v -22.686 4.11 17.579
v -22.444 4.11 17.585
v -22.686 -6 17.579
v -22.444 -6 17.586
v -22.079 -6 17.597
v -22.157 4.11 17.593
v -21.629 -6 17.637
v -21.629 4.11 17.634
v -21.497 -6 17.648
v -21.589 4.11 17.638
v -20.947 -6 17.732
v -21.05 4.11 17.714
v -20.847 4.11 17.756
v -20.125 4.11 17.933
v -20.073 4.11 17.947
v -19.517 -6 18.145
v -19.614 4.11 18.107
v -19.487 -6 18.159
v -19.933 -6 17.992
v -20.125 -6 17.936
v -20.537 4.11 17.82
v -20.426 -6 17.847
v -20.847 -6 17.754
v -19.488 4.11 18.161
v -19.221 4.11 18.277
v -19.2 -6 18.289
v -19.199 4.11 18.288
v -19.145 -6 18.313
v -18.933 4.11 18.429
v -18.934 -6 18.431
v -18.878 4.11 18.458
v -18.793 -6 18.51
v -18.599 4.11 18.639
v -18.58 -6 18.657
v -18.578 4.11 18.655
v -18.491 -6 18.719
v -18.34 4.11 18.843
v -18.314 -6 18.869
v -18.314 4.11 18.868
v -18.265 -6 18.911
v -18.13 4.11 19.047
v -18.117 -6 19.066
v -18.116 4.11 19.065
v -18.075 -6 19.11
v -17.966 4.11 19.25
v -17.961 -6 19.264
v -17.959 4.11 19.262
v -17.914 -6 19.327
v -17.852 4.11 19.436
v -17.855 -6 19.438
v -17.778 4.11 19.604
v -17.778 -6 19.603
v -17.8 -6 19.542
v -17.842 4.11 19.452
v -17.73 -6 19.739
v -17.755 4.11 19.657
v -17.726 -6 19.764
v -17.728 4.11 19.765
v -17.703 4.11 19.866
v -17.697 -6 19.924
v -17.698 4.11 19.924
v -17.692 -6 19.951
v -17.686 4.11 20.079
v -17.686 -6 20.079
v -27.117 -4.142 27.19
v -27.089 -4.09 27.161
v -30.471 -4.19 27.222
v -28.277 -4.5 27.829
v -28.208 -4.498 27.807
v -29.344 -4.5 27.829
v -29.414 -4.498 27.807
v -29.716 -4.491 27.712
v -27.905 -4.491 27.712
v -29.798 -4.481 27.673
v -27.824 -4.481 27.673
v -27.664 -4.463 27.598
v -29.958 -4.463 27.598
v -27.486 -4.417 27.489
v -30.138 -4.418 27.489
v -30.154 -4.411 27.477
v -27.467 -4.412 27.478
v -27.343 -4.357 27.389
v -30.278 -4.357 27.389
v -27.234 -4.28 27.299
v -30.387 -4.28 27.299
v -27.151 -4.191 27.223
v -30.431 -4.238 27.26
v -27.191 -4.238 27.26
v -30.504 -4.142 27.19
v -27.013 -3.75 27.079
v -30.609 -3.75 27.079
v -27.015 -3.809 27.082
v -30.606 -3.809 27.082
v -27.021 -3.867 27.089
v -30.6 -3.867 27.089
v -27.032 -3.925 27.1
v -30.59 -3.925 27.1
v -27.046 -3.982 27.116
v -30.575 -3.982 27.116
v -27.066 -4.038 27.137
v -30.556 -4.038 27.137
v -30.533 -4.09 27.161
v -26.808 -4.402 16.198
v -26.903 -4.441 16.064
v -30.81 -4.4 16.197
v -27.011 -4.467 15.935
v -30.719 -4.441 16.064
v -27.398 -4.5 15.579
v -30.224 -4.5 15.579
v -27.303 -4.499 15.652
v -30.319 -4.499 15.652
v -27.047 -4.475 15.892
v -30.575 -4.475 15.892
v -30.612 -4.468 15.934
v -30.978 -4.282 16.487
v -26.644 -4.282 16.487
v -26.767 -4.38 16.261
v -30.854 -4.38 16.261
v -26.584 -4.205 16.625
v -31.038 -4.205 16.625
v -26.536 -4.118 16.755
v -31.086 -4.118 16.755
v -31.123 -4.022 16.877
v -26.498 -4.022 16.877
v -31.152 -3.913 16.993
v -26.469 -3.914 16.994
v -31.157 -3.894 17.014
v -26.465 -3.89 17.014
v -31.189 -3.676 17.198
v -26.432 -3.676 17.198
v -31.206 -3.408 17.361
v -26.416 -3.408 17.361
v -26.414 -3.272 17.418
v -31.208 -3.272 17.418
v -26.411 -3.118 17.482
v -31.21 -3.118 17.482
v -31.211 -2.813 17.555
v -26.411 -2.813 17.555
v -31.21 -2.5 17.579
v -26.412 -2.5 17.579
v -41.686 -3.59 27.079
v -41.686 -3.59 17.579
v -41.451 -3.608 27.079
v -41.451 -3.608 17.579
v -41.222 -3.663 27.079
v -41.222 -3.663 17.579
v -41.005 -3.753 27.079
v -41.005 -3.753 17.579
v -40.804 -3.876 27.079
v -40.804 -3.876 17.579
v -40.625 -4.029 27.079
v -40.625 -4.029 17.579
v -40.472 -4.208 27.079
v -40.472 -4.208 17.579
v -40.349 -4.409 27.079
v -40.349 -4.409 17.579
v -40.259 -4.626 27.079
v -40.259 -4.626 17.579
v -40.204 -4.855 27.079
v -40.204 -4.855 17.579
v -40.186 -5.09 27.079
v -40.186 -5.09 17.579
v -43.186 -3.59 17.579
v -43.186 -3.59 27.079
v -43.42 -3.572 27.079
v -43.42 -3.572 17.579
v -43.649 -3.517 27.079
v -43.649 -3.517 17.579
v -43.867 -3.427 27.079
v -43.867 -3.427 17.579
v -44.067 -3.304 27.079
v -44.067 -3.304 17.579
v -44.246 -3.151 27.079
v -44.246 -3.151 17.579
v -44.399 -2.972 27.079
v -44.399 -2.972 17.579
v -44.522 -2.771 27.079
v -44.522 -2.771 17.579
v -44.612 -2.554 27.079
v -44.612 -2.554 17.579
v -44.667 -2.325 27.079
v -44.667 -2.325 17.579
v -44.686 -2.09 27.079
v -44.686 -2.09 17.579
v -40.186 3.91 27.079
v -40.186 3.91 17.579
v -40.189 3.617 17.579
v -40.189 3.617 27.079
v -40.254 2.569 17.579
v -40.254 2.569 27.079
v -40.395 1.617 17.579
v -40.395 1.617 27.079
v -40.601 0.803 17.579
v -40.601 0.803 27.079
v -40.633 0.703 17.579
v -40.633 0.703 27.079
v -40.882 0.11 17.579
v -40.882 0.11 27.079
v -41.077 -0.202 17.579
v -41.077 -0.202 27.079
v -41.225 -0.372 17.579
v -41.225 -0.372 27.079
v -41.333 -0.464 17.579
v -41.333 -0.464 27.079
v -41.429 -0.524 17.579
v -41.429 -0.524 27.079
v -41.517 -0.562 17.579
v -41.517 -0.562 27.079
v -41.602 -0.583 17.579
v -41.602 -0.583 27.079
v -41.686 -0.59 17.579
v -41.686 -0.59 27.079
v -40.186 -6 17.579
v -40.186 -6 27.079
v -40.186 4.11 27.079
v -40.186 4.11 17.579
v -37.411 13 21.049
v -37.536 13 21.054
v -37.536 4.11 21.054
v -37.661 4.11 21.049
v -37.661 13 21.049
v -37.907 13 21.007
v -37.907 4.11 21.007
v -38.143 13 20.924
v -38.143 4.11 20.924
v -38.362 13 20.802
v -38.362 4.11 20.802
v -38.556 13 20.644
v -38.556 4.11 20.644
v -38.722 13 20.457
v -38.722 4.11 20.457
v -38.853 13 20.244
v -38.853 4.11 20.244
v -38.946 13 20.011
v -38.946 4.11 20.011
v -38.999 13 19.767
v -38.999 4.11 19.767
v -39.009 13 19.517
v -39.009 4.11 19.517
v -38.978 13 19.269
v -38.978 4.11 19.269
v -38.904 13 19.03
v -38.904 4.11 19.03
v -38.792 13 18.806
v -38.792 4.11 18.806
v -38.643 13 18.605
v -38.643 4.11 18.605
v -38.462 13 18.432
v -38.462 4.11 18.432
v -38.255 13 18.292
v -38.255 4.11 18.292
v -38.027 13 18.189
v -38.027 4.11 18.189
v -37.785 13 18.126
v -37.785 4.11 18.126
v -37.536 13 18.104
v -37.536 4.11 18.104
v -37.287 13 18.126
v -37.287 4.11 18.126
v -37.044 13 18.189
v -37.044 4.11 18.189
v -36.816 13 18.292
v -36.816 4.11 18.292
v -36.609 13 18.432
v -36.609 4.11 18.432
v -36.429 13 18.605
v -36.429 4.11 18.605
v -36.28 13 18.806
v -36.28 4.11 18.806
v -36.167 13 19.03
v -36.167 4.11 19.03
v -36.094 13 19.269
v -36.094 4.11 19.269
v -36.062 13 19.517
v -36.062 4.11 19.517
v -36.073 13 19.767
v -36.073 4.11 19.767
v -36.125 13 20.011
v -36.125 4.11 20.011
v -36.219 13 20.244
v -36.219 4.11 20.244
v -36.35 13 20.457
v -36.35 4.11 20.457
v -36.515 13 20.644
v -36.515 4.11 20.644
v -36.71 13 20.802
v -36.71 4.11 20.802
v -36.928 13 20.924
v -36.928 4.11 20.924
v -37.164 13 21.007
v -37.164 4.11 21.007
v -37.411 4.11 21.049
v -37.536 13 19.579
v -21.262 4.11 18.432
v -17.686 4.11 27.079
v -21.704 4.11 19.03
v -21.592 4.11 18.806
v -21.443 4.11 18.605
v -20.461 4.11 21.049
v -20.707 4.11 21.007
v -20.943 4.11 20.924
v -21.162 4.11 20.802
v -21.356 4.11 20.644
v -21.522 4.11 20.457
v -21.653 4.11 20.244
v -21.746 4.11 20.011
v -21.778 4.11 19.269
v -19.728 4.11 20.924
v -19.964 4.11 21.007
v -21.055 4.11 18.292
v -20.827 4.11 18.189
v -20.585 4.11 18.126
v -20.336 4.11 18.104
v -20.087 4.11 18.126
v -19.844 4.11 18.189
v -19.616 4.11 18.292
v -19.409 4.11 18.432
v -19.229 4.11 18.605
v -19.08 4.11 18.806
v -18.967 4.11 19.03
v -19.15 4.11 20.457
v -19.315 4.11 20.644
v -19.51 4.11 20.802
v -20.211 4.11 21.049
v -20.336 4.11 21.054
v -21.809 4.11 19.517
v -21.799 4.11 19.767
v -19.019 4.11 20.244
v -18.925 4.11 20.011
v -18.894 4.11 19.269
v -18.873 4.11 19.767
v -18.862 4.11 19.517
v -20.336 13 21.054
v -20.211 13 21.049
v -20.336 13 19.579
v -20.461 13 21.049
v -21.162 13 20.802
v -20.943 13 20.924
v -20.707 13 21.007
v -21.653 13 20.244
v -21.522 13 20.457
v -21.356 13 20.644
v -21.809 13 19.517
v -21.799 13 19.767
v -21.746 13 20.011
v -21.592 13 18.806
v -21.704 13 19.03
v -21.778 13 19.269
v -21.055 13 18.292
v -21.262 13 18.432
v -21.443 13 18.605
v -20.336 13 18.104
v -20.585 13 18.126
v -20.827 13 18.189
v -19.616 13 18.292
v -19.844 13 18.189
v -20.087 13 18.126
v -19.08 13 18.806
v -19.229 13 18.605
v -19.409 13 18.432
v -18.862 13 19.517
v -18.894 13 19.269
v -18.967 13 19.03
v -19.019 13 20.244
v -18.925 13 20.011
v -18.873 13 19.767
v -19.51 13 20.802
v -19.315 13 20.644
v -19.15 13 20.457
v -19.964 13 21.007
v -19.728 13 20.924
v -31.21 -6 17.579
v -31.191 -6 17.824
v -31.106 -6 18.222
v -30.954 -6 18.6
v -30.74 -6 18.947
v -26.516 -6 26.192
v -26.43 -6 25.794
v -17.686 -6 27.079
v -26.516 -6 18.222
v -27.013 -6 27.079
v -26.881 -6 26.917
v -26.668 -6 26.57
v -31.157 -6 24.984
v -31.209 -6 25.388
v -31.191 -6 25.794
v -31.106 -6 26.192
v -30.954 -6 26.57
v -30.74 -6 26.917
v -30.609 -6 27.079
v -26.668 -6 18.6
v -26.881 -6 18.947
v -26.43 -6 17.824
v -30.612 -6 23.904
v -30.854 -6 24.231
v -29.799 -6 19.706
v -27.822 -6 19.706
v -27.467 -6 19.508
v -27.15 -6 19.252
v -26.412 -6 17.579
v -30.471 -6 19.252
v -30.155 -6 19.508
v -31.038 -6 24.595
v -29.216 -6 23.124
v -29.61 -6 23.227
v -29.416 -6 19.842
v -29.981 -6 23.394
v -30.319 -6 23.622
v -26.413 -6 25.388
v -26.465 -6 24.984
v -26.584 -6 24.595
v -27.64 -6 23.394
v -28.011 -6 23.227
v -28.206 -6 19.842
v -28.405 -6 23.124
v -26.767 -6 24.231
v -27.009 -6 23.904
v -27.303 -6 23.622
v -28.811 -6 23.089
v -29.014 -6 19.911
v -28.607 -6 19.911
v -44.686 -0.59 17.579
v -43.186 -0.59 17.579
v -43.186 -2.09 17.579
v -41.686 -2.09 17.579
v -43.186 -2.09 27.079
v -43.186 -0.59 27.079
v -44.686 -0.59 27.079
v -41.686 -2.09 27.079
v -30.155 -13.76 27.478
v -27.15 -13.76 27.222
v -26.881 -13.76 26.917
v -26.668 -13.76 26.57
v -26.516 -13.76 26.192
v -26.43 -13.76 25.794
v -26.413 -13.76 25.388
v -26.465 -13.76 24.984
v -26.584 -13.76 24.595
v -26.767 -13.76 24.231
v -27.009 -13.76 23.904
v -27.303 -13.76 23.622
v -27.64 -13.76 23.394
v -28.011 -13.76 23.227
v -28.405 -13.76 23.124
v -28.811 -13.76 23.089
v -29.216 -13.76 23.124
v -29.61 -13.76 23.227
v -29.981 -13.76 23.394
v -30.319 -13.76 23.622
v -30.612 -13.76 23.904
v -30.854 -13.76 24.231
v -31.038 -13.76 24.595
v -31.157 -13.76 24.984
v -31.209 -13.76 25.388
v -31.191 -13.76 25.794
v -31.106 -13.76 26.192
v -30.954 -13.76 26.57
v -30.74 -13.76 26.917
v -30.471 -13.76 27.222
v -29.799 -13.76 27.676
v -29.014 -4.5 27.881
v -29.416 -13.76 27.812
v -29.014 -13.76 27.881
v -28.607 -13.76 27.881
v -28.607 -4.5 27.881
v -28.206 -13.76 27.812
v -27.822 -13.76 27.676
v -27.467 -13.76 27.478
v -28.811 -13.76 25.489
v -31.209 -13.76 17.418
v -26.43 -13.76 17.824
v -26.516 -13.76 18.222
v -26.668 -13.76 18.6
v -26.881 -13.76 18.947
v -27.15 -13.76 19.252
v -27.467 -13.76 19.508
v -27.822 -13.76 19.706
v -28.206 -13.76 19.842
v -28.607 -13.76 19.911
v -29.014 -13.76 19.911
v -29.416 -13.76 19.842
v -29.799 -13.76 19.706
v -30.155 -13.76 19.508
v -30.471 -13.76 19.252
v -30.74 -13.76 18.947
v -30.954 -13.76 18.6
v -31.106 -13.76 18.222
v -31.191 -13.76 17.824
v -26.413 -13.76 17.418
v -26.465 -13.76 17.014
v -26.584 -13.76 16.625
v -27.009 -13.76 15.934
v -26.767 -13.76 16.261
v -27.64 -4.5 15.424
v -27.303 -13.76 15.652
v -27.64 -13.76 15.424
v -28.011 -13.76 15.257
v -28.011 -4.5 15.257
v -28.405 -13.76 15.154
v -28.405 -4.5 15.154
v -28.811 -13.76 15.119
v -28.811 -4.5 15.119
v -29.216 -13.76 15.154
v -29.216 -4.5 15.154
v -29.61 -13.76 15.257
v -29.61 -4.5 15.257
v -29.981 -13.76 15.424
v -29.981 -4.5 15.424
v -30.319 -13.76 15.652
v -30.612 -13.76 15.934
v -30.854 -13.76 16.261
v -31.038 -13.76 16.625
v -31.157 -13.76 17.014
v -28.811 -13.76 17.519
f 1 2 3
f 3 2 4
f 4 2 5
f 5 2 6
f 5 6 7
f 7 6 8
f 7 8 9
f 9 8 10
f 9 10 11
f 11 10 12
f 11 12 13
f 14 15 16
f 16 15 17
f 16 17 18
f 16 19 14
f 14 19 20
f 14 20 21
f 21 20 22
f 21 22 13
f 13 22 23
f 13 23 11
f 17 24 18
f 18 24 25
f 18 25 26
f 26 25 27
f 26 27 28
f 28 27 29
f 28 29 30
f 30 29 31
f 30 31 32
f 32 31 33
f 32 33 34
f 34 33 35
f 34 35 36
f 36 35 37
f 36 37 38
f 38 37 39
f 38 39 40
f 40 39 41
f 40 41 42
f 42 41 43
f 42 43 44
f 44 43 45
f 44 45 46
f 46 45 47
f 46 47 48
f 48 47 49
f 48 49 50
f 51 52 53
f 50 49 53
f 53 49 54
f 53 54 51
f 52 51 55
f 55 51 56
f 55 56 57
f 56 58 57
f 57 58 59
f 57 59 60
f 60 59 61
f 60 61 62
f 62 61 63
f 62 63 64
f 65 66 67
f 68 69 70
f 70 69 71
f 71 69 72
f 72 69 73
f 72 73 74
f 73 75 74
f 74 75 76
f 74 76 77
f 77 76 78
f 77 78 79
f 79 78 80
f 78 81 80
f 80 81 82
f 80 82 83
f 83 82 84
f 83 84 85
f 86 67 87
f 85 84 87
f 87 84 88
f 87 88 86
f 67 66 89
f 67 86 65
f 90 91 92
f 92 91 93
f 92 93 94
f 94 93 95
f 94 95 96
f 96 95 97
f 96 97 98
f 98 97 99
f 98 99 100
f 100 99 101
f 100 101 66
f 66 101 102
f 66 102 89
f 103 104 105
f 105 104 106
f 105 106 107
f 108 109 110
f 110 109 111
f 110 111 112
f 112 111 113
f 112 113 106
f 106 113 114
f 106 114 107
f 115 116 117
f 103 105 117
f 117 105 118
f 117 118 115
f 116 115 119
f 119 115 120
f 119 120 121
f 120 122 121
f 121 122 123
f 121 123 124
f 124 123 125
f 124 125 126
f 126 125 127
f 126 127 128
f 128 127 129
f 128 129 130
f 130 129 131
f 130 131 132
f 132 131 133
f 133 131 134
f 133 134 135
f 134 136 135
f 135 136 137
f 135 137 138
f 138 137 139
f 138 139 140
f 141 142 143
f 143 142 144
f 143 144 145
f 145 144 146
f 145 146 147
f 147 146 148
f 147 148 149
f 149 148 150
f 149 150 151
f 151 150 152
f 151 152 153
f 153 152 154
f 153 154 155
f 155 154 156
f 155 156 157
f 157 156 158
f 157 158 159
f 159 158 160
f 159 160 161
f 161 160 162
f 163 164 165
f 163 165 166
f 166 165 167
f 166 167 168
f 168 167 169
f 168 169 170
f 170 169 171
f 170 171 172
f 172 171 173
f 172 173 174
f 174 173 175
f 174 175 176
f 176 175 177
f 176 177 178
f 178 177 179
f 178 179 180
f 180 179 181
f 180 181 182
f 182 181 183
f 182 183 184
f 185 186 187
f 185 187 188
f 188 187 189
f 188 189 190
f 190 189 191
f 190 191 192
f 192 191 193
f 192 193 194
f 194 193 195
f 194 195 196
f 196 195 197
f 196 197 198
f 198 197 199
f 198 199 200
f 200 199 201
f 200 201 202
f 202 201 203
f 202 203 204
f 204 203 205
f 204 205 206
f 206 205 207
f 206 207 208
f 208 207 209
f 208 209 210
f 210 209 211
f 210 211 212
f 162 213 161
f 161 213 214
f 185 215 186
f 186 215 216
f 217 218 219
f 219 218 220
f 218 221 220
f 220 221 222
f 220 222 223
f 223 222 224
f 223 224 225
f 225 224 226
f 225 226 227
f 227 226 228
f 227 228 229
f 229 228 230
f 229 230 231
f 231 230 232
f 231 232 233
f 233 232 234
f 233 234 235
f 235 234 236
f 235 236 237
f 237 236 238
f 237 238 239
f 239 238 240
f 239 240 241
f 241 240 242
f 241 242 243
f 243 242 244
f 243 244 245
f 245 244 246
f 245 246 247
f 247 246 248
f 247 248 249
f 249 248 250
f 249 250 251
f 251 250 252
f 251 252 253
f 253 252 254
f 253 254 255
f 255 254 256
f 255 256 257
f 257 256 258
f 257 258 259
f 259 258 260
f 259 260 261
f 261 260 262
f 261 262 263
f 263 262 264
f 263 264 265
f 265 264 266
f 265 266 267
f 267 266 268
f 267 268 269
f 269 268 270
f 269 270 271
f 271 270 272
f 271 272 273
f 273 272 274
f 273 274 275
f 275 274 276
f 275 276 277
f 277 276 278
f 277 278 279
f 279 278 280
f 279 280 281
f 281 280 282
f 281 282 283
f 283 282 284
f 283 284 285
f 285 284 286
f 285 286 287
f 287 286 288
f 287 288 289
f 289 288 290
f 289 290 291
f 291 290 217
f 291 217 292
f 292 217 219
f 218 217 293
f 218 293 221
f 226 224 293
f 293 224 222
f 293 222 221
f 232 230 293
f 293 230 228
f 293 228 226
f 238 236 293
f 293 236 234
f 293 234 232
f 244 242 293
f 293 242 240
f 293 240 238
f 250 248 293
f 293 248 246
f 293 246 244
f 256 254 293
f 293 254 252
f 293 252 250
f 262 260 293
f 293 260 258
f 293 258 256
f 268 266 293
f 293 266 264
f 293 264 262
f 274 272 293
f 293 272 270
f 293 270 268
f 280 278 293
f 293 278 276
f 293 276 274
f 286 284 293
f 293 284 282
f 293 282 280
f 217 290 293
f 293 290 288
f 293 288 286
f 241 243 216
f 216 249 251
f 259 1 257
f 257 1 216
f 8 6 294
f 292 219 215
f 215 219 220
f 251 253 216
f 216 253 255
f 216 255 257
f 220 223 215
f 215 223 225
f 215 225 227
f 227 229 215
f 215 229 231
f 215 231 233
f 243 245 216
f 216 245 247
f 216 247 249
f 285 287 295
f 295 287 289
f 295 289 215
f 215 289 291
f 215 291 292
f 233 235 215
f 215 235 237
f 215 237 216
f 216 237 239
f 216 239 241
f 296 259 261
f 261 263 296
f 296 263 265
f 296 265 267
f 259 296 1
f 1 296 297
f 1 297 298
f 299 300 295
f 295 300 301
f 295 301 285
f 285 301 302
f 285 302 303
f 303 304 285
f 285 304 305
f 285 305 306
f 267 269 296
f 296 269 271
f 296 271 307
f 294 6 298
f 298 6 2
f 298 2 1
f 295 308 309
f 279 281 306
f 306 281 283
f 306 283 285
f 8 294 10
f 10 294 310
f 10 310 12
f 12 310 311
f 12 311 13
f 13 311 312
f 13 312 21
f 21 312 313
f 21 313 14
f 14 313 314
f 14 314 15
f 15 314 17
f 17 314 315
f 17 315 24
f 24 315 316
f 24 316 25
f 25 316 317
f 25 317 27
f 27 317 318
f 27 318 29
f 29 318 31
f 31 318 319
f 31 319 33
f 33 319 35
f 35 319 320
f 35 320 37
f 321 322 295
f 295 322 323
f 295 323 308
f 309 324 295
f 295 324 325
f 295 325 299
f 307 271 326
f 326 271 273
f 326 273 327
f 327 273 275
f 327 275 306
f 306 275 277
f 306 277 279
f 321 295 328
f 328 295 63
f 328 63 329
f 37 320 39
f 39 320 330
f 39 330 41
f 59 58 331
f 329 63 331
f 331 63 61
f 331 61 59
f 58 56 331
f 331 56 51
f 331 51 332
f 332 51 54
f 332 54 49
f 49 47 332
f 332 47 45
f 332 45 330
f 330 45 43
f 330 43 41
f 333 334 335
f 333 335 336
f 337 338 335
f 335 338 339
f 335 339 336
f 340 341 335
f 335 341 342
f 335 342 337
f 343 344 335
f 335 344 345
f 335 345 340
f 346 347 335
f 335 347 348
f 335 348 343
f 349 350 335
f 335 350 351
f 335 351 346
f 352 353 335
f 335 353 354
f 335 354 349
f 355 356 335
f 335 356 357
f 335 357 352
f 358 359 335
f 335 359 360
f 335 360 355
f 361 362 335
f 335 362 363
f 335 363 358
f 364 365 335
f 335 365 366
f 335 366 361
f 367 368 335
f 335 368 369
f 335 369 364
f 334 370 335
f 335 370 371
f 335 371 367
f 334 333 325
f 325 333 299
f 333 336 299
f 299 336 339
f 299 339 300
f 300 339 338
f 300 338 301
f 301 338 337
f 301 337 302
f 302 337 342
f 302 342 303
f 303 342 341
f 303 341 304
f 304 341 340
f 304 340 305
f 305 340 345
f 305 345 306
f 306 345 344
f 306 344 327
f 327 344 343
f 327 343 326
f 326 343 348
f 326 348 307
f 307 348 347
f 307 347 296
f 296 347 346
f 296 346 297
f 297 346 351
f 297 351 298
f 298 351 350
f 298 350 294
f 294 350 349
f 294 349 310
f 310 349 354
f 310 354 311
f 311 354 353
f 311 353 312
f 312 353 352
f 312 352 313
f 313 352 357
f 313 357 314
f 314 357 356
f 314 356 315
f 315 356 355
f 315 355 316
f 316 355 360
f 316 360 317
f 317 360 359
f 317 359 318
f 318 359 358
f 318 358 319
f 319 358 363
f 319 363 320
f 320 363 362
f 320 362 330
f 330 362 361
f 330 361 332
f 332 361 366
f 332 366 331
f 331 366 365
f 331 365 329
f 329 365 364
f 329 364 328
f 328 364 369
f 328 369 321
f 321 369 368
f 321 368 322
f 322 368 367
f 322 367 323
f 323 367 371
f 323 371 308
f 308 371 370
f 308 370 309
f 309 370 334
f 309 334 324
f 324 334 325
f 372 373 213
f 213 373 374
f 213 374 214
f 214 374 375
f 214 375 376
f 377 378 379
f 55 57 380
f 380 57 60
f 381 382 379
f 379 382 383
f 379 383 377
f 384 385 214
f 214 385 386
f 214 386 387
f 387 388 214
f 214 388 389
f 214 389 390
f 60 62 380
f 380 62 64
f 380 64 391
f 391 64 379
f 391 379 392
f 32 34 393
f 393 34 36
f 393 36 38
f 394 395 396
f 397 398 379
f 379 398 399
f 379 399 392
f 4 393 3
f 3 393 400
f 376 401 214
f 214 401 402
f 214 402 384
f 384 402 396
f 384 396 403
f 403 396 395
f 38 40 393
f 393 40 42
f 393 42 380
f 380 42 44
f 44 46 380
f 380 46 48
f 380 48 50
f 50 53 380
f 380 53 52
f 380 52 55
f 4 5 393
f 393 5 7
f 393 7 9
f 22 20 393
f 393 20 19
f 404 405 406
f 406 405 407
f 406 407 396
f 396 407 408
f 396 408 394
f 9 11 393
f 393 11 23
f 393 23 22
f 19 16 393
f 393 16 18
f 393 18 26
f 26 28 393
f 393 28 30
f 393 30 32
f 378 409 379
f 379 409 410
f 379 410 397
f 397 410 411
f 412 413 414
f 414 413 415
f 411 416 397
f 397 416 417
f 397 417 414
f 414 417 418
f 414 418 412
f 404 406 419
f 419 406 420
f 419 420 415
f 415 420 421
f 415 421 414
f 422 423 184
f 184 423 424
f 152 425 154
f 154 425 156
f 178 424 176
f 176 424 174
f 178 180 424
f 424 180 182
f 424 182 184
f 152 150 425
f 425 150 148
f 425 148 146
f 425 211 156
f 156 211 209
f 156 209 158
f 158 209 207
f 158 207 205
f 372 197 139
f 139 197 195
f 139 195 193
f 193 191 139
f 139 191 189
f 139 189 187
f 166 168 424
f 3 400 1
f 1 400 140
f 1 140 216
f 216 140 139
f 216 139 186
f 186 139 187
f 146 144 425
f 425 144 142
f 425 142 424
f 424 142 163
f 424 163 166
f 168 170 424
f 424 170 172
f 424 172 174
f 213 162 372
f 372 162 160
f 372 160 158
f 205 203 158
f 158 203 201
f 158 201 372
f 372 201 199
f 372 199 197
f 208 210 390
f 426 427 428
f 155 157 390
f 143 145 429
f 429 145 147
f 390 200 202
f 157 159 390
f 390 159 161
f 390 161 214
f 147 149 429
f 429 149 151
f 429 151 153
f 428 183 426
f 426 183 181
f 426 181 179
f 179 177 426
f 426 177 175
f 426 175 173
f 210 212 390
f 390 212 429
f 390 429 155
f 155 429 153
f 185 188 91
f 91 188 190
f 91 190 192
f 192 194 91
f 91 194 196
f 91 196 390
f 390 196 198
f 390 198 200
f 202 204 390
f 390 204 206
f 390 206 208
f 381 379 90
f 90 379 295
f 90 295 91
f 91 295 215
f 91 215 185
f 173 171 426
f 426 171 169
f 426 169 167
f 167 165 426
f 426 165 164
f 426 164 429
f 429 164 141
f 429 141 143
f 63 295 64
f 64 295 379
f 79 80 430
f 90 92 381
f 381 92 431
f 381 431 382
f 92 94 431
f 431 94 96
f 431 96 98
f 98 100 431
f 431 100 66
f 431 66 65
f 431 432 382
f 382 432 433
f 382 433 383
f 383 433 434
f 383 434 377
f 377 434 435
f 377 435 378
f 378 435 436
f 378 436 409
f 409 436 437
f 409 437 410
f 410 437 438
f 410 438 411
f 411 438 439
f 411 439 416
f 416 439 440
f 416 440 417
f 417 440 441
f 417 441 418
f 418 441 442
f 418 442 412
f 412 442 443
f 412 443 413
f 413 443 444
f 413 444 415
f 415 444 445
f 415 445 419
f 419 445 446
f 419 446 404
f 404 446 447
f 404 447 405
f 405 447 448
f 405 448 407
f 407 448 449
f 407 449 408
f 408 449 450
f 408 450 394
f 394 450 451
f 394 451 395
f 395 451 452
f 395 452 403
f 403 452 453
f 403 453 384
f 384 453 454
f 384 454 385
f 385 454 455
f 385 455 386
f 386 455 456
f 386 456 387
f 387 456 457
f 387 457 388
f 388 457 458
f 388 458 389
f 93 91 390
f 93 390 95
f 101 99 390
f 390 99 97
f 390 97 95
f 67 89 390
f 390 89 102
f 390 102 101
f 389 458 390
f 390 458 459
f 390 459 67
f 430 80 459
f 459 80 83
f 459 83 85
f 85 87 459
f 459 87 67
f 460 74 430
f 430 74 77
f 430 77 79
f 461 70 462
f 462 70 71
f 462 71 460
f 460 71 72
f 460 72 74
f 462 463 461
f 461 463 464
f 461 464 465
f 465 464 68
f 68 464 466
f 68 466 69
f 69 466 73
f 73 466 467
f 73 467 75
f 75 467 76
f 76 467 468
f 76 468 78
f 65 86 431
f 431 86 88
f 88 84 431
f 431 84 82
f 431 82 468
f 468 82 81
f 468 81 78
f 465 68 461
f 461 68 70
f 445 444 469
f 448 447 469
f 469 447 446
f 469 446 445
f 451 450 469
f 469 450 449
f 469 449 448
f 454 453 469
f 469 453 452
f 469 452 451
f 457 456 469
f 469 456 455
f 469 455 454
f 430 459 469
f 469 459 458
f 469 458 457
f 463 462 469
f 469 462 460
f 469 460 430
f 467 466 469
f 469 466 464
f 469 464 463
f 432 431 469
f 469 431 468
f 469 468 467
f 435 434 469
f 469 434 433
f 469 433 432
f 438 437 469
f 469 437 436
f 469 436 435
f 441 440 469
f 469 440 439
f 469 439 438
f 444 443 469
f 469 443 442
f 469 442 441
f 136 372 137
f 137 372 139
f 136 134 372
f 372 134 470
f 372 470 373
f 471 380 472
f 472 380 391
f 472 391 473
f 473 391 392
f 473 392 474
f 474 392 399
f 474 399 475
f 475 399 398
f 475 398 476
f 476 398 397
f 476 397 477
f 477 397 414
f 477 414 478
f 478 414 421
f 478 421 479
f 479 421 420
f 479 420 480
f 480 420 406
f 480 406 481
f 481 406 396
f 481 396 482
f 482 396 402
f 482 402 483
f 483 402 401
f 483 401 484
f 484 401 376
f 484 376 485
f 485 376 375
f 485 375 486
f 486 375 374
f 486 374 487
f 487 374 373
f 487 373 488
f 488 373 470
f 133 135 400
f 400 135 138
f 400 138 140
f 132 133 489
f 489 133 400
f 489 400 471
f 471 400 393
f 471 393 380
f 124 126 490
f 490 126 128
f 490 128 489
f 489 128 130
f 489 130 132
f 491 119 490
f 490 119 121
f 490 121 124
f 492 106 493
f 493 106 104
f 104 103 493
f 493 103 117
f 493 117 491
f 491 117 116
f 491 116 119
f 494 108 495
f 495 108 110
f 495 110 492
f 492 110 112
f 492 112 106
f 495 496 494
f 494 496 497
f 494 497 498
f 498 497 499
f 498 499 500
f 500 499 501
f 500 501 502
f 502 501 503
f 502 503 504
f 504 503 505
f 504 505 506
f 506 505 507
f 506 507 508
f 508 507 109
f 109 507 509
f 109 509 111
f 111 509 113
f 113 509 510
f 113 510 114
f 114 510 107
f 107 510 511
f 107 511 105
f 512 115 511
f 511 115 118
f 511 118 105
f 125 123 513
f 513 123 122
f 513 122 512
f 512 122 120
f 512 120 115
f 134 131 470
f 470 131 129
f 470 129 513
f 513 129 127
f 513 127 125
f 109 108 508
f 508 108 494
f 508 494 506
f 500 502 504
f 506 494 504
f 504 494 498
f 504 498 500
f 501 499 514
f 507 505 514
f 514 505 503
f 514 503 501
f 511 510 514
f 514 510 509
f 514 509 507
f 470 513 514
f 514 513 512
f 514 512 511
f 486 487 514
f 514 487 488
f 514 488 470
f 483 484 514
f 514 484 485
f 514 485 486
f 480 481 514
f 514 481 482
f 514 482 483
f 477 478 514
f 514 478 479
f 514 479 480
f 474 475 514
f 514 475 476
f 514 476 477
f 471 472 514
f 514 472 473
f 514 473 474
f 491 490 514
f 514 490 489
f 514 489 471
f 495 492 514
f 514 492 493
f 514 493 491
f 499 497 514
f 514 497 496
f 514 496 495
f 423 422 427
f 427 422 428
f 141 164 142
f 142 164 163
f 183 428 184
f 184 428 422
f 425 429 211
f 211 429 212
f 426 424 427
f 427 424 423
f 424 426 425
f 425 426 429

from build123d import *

# Parameters (mm, degrees)
SKETCH1_W                = 22.5
SKETCH1_H                = 7
BOSS_EXTRUDE1_DEPTH      = 1.5
SKETCH2_R                = 1.475
BOSS_EXTRUDE2_DEPTH      = 11.5
BOSS_EXTRUDE4_DEPTH      = 6
BOSS_EXTRUDE4_DEPTH_BACK = 1.5
SKETCH4_W                = 22.5
SKETCH4_H                = 2.5
SKETCH4_H_2              = 7
SKETCH8_W                = 22.5
SKETCH8_H                = 9.5
BOSS_EXTRUDE7_DEPTH      = 2.61
BOSS_EXTRUDE8_DEPTH      = 7.76
BOSS_EXTRUDE8_DEPTH_BACK = 1.5
SKETCH9_R                = 2.4
SKETCH15_W               = 9.5
SKETCH15_H               = 3
BOSS_EXTRUDE11_DEPTH     = 4.5
SKETCH16_W               = 1.5
SKETCH16_H               = 9.5
CUT_EXTRUDE3_DEPTH       = 1.5
FILLET1_SIZE             = 4.5
FILLET1_SIZE_2           = 1.5
FILLET2_R                = 1.5
FILLET3_R                = 1.5
FILLET4_R                = 2
FILLET5_R                = 0.75
FILLET9_SIZE             = 5
FILLET9_SIZE_2           = 2.5


with BuildPart() as part:
    # Sketch1 → Boss-Extrude1 (new body)
    with BuildSketch(Plane(origin=(0, 0, 0), x_dir=(1, 0, 0), z_dir=(0, 1, 0))):
        with Locations((-28.93578967, -21.079480712)):
            Rectangle(SKETCH1_W, SKETCH1_H)
    extrude(amount=BOSS_EXTRUDE1_DEPTH)

    # Sketch2 → Boss-Extrude2 (add)
    with BuildSketch(Plane(origin=(0, 1.5, 0), x_dir=(1, 0, 0), z_dir=(0, 1, 0))):
        with Locations(Location((-37.53578967, -19.579480712, 0), (0, 0, 90))):
            Circle(SKETCH2_R)
        with Locations(Location((-20.33578967, -19.579480712, 0), (0, 0, 90))):
            Circle(SKETCH2_R)
    extrude(amount=BOSS_EXTRUDE2_DEPTH)

    # Sketch4 → Boss-Extrude4 (add, two sides: drawn at the far end of the back side and taken through both)
    with BuildSketch(Plane(origin=(0, 0, 0), x_dir=(-1, 0, 0), z_dir=(0, -1, 0)).offset(-BOSS_EXTRUDE4_DEPTH_BACK)):
        with Locations((28.93578967, -25.829480712)):
            Rectangle(SKETCH4_W, SKETCH4_H)
        with Locations((28.93578967, -21.079480712)):
            Rectangle(SKETCH4_W, SKETCH4_H_2)
    extrude(amount=BOSS_EXTRUDE4_DEPTH + BOSS_EXTRUDE4_DEPTH_BACK)

    # Sketch8 → Boss-Extrude7 (add)
    with BuildSketch(Plane(origin=(0, 1.5, 0), x_dir=(1, 0, 0), z_dir=(0, 1, 0))):
        with Locations((-28.93578967, -22.329480712)):
            Rectangle(SKETCH8_W, SKETCH8_H)
    extrude(amount=BOSS_EXTRUDE7_DEPTH)

    # Sketch9 → Boss-Extrude8 (add, two sides: drawn at the far end of the back side and taken through both)
    with BuildSketch(Plane(origin=(0, -6, 0), x_dir=(-1, 0, 0), z_dir=(0, -1, 0)).offset(-BOSS_EXTRUDE8_DEPTH_BACK)):
        with Locations(Location((28.81078967, -25.489480712, 0), (0, 0, 90))):
            Circle(SKETCH9_R)
        with Locations(Location((28.81078967, -17.519480712, 0), (0, 0, 90))):
            Circle(SKETCH9_R)
    extrude(amount=BOSS_EXTRUDE8_DEPTH + BOSS_EXTRUDE8_DEPTH_BACK)

    # Sketch15 → Boss-Extrude11 (add)
    with BuildSketch(Plane.ZY.offset(40.18578967)):
        with Locations((22.329480712, -2.09)):
            Rectangle(SKETCH15_W, SKETCH15_H)
    extrude(amount=BOSS_EXTRUDE11_DEPTH)

    # Sketch16 → Cut-Extrude3 (cut)
    with BuildSketch(Plane(origin=(0, -0.59, 0), x_dir=(1, 0, 0), z_dir=(0, 1, 0))):
        with Locations((-42.43578967, -22.329480712)):
            Rectangle(SKETCH16_W, SKETCH16_H)
    extrude(amount=-CUT_EXTRUDE3_DEPTH, mode=Mode.SUBTRACT)

    # Fillet1
    # an asymmetric fillet: 4.5, 1.5 mm, written as the material it adds along each edge
    with BuildSketch(Plane(origin=(-40.18578967, -0.59, 27.079480712), x_dir=(0, 1, 0), z_dir=(0, 0, -1))) as fillet1_piece_1:
        with BuildLine():
            Bezier((FILLET1_SIZE, 0), (0, 0), (0, -FILLET1_SIZE_2), weights=[1, 0.707106781, 1])
            Line((0, -FILLET1_SIZE_2), (0, 0))
            Line((0, 0), (FILLET1_SIZE, 0))
        make_face()
    extrude(amount=9.5)

    # Fillet2
    fillet2_edges = [part.edges().sort_by_distance(p)[0] for p in [
        (-44.68578967, -3.59, 22.329480712),
    ]]
    fillet(fillet2_edges, radius=FILLET2_R)

    # Fillet3
    fillet3_edges = [part.edges().sort_by_distance(p)[0] for p in [
        (-40.18578967, -3.59, 22.329480712),
    ]]
    fillet(fillet3_edges, radius=FILLET3_R)

    # Fillet4
    fillet4_edges = [part.edges().sort_by_distance(p)[0] for p in [
        (-28.81078967, -4.5, 17.579480712),
    ]]
    fillet(fillet4_edges, radius=FILLET4_R)

    # Fillet5
    fillet5_edges = [part.edges().sort_by_distance(p)[0] for p in [
        (-28.81078967, -4.5, 27.079480712),
    ]]
    fillet(fillet5_edges, radius=FILLET5_R)

    # Fillet9
    # an asymmetric fillet: 5, 2.5 mm, written as the material it takes off along each edge
    with BuildSketch(Plane(origin=(-17.68578967, 16.61, 17.579480712), x_dir=(-1, 0, 0), z_dir=(0, -1, 0))) as fillet9_piece_1:
        with BuildLine():
            Bezier((FILLET9_SIZE, 0), (0, 0), (0, -FILLET9_SIZE_2), weights=[1, 0.707106781, 1])
            Line((0, -FILLET9_SIZE_2), (0, 0))
            Line((0, 0), (FILLET9_SIZE, 0))
        make_face()
    extrude(amount=35.11, mode=Mode.SUBTRACT)


solid = part.part
